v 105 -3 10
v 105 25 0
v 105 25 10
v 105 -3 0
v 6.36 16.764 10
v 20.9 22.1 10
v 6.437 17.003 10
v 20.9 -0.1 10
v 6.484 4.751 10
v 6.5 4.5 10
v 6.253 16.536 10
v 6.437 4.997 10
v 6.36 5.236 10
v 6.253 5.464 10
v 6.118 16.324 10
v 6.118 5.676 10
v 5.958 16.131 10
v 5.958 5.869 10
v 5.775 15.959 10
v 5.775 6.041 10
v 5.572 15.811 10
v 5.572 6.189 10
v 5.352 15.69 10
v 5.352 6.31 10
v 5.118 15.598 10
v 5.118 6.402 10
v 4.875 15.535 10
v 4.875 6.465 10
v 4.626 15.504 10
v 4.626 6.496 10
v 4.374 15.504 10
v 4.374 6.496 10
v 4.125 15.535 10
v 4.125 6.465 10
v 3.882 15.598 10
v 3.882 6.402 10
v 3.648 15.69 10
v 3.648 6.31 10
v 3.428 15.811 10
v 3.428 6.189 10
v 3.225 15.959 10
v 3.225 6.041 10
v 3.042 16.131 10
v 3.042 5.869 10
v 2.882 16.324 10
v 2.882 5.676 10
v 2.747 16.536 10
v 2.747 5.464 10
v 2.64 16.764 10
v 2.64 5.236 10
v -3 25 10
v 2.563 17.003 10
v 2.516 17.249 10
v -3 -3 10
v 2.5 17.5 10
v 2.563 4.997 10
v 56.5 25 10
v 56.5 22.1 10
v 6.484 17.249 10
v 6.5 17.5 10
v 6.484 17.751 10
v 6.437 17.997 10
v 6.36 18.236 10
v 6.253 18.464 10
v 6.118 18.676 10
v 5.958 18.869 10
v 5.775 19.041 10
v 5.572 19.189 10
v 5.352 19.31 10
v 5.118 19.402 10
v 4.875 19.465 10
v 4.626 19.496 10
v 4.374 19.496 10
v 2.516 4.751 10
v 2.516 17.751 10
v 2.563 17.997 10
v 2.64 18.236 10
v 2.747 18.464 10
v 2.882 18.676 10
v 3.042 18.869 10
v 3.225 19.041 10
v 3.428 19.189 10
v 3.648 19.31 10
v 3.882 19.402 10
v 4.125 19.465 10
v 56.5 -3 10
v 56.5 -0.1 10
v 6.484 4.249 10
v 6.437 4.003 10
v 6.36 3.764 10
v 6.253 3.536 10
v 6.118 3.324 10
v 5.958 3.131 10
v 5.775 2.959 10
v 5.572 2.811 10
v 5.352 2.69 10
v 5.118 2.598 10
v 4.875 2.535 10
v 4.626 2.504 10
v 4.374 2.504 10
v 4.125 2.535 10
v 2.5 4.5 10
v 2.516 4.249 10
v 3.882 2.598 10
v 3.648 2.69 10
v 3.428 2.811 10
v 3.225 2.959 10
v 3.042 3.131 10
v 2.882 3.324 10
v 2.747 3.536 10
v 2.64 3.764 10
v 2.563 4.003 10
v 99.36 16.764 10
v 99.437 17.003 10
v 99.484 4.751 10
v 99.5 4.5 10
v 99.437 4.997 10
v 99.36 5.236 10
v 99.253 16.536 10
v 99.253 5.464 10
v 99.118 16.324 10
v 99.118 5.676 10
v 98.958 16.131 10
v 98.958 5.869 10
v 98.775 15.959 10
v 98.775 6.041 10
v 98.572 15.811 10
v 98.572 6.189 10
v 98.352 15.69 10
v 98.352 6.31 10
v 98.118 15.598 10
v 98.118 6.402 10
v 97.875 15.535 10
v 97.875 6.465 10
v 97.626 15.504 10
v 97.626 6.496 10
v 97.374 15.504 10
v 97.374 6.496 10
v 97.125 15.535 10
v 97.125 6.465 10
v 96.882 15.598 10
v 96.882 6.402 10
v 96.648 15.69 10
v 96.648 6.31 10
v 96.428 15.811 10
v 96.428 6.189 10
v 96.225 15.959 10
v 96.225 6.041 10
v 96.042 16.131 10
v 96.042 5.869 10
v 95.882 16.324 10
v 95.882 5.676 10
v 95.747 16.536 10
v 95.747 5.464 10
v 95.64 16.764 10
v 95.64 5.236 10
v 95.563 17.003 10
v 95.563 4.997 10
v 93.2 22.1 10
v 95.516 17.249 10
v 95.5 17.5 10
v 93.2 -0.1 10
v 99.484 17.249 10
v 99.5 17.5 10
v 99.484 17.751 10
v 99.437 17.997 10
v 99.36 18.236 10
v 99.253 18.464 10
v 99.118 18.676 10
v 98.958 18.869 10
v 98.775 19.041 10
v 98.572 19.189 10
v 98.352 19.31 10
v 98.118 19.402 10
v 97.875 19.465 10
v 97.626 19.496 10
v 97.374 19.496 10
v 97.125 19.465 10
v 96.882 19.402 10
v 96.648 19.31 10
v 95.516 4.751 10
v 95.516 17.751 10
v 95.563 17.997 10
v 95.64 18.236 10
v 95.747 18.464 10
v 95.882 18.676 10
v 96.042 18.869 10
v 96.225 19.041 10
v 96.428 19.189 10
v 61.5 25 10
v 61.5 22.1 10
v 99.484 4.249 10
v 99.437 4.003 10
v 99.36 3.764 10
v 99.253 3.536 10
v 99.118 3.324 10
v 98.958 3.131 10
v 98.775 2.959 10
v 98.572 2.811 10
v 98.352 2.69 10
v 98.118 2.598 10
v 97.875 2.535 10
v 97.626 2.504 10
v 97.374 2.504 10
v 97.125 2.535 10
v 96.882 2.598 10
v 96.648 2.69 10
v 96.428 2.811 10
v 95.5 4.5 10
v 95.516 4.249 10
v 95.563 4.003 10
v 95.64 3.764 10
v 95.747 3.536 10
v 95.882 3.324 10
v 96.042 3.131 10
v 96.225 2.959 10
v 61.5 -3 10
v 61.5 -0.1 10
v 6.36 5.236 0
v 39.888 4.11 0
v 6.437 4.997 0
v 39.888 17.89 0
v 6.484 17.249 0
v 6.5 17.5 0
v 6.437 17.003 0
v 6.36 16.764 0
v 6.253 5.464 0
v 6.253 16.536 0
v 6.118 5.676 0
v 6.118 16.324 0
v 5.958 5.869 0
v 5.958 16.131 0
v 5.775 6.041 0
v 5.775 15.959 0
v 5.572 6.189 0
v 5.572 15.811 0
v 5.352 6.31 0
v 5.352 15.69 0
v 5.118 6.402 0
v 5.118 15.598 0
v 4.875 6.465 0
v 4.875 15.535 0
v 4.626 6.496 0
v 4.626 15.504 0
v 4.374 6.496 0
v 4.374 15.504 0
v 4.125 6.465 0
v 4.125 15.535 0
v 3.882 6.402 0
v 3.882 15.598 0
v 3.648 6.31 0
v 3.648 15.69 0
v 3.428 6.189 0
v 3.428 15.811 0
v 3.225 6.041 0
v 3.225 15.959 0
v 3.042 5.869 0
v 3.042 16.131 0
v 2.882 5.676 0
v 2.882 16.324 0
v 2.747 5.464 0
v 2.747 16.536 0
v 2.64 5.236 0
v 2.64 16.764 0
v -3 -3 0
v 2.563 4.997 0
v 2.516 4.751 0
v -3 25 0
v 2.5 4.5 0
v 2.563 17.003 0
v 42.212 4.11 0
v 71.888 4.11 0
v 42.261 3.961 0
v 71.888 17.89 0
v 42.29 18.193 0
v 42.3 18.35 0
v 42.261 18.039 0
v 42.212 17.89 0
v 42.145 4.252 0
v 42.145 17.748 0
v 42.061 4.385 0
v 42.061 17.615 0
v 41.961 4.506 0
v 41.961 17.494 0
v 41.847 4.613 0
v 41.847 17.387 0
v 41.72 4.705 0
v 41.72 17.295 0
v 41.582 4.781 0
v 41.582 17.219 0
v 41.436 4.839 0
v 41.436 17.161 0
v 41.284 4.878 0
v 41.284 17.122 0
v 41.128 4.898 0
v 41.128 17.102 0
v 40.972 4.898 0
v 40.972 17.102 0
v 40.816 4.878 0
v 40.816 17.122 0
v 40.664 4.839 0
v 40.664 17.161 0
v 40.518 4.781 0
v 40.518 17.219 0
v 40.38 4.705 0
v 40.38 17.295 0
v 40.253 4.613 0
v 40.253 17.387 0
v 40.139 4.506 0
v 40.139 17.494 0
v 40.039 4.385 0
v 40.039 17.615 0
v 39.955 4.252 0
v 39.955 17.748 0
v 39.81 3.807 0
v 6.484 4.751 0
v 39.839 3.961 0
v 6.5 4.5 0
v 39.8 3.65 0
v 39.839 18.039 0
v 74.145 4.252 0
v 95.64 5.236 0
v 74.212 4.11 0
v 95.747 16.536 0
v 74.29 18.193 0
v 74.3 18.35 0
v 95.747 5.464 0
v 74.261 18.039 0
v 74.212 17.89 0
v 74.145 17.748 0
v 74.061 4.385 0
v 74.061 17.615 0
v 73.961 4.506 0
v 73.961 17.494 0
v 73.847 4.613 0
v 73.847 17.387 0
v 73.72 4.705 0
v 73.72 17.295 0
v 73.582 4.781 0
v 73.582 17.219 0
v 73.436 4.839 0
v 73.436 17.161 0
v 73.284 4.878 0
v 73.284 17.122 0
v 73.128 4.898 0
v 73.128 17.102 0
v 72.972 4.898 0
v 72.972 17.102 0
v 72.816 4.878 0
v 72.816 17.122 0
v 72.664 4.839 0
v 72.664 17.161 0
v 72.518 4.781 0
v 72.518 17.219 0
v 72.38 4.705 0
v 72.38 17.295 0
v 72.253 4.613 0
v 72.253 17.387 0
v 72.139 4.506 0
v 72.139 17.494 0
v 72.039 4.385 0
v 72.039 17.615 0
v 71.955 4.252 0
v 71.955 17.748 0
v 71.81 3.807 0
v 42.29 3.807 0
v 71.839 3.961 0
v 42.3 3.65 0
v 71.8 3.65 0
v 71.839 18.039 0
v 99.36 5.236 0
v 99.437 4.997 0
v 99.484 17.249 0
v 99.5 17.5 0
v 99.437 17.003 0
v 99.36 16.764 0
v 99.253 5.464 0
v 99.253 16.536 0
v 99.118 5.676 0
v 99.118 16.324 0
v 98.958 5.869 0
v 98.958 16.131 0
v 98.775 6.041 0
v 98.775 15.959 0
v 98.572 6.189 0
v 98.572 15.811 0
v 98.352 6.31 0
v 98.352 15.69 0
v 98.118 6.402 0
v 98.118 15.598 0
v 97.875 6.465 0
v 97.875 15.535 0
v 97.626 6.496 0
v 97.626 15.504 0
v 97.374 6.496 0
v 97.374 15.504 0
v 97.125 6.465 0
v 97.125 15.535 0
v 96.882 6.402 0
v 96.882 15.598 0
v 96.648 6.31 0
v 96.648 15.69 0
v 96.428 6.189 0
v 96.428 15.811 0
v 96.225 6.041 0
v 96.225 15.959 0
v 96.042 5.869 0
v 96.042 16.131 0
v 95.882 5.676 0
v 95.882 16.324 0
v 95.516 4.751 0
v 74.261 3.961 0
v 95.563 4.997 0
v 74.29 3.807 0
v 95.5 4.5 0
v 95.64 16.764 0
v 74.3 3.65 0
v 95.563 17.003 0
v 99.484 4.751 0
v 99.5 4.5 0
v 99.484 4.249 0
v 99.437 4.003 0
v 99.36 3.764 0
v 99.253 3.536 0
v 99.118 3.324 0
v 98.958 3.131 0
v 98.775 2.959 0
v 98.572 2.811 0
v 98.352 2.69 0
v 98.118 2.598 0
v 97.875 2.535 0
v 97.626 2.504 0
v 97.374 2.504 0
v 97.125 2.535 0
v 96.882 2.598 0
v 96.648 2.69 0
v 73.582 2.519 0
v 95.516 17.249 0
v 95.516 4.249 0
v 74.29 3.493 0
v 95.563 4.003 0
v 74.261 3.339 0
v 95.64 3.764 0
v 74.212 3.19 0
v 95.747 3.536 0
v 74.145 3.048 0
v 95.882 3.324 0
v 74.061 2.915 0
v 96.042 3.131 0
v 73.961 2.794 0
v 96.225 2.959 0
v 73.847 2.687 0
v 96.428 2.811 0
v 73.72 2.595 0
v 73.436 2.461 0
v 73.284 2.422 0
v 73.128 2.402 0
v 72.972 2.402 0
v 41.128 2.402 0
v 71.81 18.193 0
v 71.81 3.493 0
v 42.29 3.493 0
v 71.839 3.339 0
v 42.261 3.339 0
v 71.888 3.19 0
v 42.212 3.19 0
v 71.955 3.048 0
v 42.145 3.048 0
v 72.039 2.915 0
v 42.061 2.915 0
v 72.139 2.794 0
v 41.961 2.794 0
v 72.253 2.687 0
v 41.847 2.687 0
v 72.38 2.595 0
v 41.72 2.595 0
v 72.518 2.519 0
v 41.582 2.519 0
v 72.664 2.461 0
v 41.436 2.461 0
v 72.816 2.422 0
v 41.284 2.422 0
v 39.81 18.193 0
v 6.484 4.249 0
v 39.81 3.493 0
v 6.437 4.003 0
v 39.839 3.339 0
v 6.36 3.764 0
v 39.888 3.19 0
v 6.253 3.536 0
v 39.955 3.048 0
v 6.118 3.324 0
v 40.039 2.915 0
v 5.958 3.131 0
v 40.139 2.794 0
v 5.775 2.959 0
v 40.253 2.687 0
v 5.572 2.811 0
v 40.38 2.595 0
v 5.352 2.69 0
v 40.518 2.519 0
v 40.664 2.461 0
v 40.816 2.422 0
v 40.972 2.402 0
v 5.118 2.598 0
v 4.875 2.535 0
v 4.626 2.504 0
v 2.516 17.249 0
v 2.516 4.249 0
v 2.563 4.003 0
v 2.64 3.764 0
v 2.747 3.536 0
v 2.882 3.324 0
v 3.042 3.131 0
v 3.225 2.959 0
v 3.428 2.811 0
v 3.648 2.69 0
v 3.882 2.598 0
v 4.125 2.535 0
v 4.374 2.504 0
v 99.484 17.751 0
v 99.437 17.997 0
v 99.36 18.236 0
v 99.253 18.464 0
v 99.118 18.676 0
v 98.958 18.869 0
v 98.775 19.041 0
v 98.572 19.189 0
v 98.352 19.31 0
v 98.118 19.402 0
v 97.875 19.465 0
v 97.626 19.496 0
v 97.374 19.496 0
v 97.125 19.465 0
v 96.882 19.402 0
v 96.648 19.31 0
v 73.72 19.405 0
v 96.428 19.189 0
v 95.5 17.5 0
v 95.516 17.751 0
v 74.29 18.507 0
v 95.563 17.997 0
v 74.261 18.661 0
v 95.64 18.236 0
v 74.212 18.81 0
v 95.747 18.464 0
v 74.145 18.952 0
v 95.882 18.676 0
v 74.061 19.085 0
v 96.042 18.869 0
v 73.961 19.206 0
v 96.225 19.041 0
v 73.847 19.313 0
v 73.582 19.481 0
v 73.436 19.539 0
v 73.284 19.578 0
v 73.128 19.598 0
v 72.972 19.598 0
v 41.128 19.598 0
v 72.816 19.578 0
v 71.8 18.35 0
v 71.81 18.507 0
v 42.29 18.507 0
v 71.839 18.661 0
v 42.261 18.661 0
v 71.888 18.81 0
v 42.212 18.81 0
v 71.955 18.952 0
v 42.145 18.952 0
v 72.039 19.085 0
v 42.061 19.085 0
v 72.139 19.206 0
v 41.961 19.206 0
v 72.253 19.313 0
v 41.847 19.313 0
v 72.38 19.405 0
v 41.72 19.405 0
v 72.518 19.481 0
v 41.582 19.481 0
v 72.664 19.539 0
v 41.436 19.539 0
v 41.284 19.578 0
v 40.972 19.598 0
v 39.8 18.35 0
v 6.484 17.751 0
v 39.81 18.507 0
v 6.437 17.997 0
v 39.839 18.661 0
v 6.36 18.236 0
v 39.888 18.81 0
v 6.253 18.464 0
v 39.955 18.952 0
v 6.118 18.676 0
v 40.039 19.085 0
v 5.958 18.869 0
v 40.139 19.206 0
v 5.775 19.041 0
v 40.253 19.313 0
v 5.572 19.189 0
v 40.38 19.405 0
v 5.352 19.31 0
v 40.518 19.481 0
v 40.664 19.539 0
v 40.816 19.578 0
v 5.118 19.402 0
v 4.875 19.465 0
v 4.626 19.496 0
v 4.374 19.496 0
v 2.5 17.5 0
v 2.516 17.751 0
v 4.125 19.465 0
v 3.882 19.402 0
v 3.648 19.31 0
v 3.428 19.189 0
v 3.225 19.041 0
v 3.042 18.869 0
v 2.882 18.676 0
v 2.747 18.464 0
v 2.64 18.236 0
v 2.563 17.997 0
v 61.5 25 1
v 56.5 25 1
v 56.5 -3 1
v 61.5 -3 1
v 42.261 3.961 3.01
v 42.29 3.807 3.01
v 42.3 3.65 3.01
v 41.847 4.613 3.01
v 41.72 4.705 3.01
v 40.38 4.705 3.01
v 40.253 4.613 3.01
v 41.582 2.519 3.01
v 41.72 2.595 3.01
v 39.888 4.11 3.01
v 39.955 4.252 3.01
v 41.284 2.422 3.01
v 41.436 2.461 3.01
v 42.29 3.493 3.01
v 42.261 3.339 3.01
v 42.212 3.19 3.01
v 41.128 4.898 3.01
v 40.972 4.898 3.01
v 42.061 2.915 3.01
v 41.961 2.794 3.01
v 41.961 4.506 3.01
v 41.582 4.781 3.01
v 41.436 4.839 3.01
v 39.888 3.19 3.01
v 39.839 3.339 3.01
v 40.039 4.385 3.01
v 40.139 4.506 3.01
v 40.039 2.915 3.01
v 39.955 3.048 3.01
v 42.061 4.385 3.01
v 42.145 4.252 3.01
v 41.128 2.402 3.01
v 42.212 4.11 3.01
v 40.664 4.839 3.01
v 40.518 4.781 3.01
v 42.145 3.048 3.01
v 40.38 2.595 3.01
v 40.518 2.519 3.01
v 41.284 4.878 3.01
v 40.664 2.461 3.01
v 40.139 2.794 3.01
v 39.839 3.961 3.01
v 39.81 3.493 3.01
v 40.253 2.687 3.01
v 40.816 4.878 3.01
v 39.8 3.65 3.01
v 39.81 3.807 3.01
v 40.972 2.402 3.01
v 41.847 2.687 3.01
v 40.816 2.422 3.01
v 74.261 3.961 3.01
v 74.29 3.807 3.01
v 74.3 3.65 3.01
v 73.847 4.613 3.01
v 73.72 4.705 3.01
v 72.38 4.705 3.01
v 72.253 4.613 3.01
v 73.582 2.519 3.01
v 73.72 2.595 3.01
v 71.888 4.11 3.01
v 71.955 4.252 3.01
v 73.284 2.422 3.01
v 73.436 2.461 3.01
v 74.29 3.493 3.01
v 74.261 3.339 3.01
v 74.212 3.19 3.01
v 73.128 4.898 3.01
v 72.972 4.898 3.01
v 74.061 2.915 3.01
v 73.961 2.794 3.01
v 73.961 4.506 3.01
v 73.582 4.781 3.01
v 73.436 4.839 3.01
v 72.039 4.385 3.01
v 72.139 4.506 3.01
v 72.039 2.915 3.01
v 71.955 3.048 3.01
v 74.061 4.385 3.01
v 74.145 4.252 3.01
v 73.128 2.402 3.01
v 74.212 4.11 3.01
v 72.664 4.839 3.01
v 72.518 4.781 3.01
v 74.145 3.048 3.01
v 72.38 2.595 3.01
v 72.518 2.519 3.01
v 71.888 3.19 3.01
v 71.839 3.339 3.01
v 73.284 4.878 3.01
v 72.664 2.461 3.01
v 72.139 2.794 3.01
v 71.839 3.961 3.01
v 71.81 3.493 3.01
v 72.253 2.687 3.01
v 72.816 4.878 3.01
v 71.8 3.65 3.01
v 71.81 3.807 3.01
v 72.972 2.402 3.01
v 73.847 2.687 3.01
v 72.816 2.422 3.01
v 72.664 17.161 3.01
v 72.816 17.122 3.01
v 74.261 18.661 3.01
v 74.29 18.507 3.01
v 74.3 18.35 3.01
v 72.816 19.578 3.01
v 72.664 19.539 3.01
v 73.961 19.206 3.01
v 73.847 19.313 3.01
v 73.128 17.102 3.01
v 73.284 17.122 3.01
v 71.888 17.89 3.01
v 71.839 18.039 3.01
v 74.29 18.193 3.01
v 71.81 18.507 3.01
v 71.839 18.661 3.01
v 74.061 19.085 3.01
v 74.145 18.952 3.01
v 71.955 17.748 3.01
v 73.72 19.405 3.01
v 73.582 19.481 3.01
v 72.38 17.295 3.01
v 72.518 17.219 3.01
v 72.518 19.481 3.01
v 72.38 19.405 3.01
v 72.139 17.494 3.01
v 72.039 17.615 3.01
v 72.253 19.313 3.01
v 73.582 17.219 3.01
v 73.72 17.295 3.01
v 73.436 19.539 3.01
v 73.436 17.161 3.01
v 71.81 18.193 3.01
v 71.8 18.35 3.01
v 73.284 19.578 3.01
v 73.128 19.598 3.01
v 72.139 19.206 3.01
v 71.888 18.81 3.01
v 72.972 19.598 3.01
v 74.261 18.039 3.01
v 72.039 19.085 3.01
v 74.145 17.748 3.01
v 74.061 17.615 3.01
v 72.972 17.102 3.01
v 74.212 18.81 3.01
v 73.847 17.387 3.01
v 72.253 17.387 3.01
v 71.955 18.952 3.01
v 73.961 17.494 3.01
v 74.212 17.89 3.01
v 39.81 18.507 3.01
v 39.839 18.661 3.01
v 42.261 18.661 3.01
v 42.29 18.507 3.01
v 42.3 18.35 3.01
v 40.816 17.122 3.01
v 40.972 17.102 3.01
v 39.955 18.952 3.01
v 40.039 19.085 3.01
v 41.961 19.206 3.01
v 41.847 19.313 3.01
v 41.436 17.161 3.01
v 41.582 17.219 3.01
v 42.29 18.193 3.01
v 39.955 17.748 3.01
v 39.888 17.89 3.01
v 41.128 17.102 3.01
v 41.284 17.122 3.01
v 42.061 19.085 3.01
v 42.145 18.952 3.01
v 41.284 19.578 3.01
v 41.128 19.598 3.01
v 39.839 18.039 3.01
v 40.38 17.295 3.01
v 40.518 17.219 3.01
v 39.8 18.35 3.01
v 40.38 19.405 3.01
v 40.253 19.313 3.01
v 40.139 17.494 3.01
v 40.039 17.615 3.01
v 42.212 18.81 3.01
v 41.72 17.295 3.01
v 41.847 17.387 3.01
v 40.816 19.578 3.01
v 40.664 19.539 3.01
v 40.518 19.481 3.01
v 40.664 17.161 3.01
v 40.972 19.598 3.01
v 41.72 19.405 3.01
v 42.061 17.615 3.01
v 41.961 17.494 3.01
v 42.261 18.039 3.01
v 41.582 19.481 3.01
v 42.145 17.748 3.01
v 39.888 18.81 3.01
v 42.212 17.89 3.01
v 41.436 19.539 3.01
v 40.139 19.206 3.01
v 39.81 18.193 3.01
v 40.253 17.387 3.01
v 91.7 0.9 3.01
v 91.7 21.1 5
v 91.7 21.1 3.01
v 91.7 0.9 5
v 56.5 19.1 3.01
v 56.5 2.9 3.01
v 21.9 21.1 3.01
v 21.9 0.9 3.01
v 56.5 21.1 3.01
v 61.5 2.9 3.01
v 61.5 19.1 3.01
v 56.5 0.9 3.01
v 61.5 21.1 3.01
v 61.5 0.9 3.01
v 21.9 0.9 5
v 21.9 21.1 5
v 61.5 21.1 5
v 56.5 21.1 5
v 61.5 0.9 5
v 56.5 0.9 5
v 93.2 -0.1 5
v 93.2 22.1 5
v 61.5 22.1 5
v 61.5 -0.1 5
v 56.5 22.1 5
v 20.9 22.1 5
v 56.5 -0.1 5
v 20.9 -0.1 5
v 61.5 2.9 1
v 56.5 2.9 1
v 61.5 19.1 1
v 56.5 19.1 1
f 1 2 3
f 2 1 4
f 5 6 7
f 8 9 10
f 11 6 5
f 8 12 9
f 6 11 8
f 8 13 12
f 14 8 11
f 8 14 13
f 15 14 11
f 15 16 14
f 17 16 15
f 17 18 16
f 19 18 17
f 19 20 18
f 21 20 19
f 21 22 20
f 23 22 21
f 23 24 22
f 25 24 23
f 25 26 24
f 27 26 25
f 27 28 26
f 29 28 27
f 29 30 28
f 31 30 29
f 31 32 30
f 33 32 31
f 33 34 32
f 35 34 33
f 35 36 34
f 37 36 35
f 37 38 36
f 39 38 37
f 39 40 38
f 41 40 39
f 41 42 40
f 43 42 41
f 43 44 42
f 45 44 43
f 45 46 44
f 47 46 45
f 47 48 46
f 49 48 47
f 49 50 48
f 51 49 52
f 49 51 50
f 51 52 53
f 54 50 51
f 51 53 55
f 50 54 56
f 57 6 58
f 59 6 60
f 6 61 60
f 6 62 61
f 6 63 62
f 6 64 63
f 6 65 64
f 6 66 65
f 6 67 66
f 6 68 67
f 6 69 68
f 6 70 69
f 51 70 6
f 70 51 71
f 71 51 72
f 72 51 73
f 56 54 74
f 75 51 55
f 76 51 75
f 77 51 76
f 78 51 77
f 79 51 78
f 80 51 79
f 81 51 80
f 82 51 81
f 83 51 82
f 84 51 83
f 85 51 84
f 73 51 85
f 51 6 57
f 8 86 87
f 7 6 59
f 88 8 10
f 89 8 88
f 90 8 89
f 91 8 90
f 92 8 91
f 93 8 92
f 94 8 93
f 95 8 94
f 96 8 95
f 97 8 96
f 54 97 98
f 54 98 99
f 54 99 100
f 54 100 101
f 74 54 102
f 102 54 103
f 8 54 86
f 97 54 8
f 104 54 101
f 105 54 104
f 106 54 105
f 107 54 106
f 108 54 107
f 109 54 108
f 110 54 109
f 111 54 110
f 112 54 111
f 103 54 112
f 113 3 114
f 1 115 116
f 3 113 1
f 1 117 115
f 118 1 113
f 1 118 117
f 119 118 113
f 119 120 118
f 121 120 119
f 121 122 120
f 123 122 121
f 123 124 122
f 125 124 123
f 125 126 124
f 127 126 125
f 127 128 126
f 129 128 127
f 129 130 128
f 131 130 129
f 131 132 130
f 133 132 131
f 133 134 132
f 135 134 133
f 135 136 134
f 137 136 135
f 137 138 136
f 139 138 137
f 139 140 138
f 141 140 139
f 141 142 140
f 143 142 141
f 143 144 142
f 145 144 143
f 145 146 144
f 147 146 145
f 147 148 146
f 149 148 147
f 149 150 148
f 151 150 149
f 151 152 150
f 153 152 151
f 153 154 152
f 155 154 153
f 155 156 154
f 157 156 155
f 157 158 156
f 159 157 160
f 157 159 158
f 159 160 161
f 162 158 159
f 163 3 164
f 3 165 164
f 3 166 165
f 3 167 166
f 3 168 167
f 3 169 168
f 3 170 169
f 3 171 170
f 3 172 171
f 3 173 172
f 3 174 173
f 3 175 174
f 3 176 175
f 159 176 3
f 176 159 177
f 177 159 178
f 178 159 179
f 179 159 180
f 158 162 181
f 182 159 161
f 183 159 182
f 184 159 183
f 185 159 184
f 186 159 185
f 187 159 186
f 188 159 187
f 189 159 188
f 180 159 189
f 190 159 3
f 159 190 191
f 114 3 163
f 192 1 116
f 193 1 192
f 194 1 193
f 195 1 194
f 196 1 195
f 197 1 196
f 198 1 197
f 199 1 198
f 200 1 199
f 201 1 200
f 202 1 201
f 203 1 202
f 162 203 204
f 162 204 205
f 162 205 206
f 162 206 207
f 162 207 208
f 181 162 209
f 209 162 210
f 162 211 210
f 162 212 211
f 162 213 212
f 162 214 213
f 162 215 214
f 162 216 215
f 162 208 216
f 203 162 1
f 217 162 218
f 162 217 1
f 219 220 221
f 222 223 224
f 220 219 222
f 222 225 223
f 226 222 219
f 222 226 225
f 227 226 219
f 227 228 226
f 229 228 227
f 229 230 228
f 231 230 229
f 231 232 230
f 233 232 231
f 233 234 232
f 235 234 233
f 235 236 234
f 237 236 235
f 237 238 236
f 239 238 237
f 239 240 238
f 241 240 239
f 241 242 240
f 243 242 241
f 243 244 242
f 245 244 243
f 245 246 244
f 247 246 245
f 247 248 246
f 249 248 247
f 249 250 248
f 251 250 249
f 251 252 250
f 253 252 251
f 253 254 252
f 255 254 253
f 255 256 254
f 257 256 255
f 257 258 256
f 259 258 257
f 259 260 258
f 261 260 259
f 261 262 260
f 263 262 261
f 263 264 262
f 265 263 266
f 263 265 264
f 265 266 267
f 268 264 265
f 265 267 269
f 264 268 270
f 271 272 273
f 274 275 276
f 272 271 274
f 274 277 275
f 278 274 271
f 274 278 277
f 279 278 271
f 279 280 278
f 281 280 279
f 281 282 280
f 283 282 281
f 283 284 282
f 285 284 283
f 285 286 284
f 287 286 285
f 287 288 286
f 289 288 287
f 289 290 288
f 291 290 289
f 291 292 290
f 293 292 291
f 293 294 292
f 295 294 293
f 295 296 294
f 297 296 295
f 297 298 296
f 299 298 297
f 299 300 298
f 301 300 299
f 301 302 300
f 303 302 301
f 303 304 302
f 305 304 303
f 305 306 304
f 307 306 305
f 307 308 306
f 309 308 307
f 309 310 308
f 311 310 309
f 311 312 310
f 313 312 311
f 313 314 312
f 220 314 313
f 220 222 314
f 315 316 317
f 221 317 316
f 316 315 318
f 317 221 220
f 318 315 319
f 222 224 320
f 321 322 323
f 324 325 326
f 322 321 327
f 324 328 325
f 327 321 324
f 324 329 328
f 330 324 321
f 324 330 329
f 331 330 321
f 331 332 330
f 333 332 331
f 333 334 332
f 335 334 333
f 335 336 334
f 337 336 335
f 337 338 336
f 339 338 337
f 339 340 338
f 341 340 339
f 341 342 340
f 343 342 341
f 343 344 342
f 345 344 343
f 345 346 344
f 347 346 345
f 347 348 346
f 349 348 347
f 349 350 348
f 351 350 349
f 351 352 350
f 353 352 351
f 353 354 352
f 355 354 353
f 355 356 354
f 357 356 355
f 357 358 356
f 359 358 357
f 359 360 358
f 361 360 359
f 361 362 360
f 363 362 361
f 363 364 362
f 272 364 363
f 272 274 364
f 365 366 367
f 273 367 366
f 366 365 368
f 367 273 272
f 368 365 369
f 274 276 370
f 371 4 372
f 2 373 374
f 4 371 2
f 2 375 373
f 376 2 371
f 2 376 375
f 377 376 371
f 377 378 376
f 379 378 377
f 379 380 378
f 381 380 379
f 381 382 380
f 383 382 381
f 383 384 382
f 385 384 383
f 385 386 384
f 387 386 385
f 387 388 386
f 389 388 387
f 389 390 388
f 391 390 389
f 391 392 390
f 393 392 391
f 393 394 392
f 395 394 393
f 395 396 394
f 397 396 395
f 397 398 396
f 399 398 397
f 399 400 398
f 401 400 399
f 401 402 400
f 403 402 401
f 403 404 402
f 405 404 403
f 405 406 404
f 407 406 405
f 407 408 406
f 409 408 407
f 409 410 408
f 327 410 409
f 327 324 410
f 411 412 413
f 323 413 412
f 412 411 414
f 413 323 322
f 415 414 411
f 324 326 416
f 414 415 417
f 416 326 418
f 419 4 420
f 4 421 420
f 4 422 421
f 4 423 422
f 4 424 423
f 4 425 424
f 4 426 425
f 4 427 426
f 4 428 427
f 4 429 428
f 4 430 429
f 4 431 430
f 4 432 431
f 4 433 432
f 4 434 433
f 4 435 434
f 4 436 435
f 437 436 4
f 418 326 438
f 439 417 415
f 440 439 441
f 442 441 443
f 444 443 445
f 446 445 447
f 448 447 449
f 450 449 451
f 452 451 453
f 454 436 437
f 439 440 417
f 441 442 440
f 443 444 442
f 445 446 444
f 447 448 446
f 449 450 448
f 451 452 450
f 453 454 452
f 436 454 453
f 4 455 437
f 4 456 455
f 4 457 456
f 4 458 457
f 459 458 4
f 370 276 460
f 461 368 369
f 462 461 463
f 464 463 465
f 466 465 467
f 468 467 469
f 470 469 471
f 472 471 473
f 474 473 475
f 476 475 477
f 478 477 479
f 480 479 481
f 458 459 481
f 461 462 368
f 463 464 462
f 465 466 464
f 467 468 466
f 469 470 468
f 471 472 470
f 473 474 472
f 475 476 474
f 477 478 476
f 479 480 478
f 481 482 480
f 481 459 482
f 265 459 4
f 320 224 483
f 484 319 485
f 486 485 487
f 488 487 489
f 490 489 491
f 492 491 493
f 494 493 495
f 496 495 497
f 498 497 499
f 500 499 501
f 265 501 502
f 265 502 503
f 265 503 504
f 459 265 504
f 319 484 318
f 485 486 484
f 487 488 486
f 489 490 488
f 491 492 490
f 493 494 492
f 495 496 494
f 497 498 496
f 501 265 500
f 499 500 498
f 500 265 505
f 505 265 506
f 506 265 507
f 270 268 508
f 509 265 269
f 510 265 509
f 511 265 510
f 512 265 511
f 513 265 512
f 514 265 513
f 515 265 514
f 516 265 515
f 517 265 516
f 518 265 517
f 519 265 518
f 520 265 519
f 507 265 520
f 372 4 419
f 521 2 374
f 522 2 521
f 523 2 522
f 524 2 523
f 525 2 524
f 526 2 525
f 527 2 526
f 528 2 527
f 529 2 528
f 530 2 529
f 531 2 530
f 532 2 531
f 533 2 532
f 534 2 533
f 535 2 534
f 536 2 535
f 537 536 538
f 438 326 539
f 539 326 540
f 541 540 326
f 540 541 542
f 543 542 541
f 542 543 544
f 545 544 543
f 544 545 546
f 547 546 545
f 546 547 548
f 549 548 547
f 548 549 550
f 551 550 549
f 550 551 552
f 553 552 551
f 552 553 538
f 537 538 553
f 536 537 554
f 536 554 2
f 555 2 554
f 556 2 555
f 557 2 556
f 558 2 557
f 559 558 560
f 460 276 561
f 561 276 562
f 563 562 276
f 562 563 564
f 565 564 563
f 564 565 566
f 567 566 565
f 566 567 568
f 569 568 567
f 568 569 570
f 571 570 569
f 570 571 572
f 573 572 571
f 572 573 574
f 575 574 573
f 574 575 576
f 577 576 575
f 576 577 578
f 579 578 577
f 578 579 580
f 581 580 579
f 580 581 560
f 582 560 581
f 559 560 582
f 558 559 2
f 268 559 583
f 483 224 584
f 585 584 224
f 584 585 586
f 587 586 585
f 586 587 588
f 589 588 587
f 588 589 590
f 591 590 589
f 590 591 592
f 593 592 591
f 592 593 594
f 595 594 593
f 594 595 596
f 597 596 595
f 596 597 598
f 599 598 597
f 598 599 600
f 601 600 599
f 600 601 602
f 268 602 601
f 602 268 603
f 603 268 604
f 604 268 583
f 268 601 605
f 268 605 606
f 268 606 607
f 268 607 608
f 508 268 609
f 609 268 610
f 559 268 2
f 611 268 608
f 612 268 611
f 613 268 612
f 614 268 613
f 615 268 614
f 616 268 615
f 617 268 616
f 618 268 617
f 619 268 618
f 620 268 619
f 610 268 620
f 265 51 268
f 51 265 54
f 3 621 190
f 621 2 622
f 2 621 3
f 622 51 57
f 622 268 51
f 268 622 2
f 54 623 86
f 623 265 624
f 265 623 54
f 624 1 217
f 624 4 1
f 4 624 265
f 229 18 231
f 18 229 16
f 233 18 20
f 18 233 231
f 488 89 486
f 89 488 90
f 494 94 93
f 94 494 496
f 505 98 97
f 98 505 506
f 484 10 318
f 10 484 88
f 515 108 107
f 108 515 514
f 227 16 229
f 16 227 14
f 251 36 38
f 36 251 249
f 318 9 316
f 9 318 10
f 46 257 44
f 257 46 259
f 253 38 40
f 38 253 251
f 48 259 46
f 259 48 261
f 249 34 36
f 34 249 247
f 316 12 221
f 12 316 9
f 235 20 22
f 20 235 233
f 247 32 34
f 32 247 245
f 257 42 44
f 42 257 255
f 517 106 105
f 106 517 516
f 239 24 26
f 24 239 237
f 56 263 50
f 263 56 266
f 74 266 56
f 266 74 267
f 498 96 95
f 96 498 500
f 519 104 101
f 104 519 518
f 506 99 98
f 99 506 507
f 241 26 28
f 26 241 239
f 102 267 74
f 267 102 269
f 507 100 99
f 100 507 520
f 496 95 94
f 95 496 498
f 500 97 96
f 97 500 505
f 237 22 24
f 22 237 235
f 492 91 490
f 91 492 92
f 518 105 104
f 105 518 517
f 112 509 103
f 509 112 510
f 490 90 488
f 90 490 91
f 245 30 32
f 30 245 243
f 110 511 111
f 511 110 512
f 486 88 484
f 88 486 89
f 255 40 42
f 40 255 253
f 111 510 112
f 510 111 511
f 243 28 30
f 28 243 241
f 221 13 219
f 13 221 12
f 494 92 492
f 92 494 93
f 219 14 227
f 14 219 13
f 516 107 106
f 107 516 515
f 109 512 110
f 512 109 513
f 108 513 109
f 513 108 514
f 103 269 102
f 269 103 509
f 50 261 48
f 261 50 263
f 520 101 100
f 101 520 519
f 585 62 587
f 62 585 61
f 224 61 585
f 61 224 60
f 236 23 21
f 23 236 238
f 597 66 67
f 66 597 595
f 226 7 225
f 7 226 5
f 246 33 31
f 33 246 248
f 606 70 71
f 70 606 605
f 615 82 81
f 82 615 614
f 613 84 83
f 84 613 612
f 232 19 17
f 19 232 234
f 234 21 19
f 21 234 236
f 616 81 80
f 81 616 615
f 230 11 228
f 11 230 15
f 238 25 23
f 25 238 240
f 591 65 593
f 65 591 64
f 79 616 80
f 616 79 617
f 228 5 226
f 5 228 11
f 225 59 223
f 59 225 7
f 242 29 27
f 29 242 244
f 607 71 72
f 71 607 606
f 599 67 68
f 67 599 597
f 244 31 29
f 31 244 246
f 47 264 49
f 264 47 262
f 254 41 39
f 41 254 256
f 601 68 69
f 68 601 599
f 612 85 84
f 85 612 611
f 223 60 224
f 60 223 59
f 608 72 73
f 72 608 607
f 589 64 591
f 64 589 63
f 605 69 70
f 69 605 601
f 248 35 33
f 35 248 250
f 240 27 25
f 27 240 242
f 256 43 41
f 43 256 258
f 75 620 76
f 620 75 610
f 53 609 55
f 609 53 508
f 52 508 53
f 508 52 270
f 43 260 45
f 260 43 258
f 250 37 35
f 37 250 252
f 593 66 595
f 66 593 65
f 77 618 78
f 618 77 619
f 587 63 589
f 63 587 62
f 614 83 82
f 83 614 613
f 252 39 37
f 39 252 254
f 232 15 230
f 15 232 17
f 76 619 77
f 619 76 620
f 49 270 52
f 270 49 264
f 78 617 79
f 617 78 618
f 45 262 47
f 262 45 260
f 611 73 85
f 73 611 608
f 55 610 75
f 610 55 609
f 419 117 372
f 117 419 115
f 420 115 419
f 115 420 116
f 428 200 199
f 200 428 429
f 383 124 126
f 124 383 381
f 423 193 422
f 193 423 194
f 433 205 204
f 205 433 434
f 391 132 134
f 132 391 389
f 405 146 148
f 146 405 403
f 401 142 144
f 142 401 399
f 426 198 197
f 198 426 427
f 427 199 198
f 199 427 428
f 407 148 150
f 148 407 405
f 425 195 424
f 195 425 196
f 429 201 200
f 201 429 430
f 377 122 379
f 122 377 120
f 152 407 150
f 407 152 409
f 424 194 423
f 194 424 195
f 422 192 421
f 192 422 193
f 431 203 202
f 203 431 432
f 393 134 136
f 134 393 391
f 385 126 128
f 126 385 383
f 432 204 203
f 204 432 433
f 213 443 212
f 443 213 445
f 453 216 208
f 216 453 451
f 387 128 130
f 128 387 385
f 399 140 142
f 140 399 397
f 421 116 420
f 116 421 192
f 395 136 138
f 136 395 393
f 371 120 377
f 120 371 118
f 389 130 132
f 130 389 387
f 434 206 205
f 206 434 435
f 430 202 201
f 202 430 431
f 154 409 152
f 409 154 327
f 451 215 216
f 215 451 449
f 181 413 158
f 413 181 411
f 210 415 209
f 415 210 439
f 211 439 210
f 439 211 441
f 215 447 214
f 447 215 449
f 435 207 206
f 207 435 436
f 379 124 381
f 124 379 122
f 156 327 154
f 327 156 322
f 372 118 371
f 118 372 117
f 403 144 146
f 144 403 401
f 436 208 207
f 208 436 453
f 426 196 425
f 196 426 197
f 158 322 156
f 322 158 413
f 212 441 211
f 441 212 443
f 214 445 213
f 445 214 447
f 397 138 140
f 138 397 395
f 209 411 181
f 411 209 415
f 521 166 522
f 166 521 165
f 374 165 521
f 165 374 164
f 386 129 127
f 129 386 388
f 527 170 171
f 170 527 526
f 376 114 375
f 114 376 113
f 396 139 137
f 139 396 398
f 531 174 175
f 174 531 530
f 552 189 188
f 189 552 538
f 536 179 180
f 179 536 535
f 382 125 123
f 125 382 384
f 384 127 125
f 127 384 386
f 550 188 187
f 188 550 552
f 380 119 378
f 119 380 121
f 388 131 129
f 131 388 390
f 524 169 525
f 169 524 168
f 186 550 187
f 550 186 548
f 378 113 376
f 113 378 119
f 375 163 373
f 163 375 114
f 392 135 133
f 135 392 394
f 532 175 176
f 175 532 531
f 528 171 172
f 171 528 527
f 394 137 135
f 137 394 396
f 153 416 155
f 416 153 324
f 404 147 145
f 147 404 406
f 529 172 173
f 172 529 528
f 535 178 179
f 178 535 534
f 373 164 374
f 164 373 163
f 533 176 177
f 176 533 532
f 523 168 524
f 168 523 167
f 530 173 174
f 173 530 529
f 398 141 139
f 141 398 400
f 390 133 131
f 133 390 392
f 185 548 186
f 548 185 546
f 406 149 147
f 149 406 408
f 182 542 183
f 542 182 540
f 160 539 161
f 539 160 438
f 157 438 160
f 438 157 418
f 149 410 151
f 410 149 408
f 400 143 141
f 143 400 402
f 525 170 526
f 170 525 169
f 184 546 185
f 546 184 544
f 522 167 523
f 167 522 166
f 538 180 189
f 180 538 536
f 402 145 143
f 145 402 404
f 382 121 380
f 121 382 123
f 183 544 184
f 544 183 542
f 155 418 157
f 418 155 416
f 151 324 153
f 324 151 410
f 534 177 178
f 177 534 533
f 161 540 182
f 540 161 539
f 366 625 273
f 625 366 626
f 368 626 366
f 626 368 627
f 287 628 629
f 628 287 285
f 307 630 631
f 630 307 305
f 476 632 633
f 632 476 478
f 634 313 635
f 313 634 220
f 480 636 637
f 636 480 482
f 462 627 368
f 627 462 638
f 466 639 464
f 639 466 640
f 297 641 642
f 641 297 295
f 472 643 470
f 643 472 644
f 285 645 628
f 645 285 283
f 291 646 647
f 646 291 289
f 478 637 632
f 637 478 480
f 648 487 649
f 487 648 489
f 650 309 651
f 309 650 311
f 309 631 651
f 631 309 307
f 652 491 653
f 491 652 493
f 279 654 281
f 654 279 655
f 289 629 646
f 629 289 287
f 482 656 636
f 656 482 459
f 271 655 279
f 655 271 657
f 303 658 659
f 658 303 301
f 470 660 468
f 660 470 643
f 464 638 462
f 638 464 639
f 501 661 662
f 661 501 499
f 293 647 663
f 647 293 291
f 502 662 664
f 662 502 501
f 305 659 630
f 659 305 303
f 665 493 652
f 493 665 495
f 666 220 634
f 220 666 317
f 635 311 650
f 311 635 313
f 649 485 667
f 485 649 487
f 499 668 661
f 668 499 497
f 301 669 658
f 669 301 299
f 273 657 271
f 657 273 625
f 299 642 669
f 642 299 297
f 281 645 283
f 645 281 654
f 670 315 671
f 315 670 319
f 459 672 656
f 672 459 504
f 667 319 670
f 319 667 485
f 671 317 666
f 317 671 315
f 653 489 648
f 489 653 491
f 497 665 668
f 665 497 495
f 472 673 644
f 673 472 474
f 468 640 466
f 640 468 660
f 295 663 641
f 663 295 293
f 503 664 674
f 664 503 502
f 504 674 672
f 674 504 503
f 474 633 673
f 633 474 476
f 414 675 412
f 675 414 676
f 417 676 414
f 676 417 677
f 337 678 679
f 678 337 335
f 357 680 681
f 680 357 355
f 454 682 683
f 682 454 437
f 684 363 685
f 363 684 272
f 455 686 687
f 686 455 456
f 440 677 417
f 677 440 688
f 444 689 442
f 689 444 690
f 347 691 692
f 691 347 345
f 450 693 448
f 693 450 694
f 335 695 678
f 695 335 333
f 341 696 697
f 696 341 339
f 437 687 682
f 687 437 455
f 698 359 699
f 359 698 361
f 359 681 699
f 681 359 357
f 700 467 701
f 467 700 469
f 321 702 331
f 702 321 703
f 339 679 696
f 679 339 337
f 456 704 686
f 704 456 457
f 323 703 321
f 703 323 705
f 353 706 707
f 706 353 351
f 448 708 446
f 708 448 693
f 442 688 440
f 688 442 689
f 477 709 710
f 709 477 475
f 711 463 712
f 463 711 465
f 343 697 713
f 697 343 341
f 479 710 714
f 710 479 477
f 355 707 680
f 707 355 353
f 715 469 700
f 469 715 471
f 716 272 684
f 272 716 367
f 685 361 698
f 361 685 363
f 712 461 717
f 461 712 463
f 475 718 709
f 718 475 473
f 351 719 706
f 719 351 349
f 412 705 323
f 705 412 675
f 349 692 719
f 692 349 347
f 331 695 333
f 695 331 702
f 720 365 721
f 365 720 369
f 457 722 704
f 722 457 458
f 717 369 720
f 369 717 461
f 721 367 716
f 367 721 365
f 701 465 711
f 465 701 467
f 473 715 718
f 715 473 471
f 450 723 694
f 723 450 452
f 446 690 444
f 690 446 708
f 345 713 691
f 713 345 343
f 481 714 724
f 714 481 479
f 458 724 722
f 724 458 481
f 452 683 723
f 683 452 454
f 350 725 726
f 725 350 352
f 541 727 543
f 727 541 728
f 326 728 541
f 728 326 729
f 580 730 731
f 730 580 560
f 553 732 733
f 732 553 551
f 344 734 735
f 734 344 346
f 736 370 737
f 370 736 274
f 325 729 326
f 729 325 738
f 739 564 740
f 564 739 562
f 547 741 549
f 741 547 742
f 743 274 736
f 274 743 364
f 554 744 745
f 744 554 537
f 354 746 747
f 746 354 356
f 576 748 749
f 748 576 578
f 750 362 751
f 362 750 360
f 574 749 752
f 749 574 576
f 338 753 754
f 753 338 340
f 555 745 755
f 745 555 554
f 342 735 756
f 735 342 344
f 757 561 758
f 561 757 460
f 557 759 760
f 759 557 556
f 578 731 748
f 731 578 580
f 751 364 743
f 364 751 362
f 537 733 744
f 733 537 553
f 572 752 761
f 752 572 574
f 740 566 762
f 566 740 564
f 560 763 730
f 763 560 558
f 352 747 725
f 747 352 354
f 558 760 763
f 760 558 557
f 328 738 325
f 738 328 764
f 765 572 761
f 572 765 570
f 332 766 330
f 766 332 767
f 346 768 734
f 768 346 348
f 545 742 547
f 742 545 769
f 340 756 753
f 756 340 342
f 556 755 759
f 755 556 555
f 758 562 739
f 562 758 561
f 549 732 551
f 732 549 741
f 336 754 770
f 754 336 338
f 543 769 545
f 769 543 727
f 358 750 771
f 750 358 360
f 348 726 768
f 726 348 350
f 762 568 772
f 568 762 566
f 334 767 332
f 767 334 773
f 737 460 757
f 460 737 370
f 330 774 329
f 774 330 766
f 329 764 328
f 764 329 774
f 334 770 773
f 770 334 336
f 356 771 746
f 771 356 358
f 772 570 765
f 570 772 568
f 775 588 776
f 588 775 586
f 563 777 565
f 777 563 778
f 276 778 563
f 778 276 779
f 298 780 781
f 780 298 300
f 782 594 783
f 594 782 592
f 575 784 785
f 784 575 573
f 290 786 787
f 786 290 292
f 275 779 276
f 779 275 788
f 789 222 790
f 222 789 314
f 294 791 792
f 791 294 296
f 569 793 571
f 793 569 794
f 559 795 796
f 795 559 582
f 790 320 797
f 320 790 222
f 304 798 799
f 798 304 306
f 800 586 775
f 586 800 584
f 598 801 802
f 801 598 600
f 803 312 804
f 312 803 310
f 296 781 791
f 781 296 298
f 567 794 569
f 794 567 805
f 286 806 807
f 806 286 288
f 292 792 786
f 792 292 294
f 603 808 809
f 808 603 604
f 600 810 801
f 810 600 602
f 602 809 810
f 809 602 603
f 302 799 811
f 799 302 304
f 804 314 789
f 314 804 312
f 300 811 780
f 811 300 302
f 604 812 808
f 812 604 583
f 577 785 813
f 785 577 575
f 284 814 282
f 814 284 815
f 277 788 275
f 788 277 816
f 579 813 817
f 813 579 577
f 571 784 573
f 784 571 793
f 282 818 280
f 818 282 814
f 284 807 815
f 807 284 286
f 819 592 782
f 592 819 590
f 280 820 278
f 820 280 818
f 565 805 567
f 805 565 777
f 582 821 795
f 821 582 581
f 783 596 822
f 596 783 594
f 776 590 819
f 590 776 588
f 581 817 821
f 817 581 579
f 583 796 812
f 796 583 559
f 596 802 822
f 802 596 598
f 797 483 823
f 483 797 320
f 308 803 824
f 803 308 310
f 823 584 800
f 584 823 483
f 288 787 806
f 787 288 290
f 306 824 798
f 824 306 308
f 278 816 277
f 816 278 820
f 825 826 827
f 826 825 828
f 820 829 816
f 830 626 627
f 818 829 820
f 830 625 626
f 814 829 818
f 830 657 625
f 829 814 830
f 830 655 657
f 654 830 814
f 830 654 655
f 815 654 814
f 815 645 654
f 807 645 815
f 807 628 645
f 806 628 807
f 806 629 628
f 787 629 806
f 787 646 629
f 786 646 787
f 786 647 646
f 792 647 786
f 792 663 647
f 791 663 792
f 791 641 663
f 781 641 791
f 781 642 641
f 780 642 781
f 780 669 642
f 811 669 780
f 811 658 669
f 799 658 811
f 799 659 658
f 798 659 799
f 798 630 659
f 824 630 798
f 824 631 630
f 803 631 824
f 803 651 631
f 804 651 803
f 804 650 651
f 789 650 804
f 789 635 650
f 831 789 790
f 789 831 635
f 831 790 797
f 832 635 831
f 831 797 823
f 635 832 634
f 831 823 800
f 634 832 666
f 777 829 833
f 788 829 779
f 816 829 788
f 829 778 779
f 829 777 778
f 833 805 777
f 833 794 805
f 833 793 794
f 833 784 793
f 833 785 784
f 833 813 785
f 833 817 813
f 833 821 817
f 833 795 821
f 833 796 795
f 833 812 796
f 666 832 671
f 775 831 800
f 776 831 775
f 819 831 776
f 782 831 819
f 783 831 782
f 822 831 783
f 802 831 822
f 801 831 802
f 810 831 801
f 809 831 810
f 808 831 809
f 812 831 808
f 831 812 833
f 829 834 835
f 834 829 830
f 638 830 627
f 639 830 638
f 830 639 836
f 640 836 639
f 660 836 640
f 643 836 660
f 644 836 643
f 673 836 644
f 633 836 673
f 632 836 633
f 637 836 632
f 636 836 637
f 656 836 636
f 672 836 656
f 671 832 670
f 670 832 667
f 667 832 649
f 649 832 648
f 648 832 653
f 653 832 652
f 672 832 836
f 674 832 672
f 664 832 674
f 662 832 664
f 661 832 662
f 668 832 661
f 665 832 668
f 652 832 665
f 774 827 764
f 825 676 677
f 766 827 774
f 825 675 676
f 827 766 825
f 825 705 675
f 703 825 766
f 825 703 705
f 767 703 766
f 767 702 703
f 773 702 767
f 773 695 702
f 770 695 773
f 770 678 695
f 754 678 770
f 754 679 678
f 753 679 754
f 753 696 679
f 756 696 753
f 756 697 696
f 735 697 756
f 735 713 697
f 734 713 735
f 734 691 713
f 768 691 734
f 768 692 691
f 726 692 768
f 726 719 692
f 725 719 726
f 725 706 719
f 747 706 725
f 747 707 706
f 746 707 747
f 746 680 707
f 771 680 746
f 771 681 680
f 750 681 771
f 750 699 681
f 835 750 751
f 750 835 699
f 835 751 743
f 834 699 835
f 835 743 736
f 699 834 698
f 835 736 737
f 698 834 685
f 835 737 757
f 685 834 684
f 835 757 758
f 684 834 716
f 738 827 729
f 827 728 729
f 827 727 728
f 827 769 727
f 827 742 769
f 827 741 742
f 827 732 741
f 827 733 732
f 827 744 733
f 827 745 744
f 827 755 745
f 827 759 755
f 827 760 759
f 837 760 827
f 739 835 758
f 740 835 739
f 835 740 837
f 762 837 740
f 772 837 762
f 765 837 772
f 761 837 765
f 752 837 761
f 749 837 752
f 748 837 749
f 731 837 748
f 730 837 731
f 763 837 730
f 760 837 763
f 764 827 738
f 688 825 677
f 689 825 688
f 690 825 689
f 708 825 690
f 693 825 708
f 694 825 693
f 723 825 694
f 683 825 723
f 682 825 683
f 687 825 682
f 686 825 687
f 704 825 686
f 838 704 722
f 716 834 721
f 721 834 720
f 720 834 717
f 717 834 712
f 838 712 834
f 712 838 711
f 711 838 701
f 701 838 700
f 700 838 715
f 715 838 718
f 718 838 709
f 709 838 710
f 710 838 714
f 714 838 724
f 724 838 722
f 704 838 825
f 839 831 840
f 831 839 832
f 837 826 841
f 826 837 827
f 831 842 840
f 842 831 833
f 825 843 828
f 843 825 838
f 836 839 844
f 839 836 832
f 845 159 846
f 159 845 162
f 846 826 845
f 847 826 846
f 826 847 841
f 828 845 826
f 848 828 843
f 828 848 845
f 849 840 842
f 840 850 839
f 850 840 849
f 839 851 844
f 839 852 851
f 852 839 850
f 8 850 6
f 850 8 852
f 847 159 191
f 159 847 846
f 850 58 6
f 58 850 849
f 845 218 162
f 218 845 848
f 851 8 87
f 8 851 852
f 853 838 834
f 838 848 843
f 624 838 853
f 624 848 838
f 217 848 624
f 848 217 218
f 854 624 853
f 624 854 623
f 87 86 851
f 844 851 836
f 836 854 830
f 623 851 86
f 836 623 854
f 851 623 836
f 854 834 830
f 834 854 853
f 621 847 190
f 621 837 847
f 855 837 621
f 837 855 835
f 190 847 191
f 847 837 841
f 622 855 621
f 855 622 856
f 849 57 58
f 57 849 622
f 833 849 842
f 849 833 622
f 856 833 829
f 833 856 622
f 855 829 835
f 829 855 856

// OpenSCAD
$fn=50;

//cube([72,22,4]);
union() {
    difference() {
        translate([-3, -3, 0]) cube([102+6,22+6,10]);
        translate([4.5, 4.5,-1] ) cylinder(d=4, h=12);
        translate([4.5, 17.5,-1] ) cylinder(d=4, h=12);
        translate([97.5, 4.5,-1] ) cylinder(d=4, h=12);
        translate([97.5, 17.5,-1] ) cylinder(d=4, h=12);
        
        translate([41.05, 3.65, -0.1])cylinder(d=2.5, h=12);
        translate([73.05, 3.65, -0.1])cylinder(d=2.5, h=12);
        translate([73.05, 18.35, -0.1])cylinder(d=2.5, h=12);
        translate([41.05, 18.35, -0.1])cylinder(d=2.5, h=12);
        
        translate([21-0.1+1, 1-0.1, 5-2+0.01]) cube([72+0-2.2,20+0.2,10]);
        translate([21-0.1, 0-0.1, 5]) cube([72.1+0.2,22+0.2,10]);
        translate([(102+6)/2+2.5,-3.1,1]) cube([5, 6, 30]);
        translate([(102+6)/2+2.5,19.1,1]) cube([5, 6, 30]);
    }
}
